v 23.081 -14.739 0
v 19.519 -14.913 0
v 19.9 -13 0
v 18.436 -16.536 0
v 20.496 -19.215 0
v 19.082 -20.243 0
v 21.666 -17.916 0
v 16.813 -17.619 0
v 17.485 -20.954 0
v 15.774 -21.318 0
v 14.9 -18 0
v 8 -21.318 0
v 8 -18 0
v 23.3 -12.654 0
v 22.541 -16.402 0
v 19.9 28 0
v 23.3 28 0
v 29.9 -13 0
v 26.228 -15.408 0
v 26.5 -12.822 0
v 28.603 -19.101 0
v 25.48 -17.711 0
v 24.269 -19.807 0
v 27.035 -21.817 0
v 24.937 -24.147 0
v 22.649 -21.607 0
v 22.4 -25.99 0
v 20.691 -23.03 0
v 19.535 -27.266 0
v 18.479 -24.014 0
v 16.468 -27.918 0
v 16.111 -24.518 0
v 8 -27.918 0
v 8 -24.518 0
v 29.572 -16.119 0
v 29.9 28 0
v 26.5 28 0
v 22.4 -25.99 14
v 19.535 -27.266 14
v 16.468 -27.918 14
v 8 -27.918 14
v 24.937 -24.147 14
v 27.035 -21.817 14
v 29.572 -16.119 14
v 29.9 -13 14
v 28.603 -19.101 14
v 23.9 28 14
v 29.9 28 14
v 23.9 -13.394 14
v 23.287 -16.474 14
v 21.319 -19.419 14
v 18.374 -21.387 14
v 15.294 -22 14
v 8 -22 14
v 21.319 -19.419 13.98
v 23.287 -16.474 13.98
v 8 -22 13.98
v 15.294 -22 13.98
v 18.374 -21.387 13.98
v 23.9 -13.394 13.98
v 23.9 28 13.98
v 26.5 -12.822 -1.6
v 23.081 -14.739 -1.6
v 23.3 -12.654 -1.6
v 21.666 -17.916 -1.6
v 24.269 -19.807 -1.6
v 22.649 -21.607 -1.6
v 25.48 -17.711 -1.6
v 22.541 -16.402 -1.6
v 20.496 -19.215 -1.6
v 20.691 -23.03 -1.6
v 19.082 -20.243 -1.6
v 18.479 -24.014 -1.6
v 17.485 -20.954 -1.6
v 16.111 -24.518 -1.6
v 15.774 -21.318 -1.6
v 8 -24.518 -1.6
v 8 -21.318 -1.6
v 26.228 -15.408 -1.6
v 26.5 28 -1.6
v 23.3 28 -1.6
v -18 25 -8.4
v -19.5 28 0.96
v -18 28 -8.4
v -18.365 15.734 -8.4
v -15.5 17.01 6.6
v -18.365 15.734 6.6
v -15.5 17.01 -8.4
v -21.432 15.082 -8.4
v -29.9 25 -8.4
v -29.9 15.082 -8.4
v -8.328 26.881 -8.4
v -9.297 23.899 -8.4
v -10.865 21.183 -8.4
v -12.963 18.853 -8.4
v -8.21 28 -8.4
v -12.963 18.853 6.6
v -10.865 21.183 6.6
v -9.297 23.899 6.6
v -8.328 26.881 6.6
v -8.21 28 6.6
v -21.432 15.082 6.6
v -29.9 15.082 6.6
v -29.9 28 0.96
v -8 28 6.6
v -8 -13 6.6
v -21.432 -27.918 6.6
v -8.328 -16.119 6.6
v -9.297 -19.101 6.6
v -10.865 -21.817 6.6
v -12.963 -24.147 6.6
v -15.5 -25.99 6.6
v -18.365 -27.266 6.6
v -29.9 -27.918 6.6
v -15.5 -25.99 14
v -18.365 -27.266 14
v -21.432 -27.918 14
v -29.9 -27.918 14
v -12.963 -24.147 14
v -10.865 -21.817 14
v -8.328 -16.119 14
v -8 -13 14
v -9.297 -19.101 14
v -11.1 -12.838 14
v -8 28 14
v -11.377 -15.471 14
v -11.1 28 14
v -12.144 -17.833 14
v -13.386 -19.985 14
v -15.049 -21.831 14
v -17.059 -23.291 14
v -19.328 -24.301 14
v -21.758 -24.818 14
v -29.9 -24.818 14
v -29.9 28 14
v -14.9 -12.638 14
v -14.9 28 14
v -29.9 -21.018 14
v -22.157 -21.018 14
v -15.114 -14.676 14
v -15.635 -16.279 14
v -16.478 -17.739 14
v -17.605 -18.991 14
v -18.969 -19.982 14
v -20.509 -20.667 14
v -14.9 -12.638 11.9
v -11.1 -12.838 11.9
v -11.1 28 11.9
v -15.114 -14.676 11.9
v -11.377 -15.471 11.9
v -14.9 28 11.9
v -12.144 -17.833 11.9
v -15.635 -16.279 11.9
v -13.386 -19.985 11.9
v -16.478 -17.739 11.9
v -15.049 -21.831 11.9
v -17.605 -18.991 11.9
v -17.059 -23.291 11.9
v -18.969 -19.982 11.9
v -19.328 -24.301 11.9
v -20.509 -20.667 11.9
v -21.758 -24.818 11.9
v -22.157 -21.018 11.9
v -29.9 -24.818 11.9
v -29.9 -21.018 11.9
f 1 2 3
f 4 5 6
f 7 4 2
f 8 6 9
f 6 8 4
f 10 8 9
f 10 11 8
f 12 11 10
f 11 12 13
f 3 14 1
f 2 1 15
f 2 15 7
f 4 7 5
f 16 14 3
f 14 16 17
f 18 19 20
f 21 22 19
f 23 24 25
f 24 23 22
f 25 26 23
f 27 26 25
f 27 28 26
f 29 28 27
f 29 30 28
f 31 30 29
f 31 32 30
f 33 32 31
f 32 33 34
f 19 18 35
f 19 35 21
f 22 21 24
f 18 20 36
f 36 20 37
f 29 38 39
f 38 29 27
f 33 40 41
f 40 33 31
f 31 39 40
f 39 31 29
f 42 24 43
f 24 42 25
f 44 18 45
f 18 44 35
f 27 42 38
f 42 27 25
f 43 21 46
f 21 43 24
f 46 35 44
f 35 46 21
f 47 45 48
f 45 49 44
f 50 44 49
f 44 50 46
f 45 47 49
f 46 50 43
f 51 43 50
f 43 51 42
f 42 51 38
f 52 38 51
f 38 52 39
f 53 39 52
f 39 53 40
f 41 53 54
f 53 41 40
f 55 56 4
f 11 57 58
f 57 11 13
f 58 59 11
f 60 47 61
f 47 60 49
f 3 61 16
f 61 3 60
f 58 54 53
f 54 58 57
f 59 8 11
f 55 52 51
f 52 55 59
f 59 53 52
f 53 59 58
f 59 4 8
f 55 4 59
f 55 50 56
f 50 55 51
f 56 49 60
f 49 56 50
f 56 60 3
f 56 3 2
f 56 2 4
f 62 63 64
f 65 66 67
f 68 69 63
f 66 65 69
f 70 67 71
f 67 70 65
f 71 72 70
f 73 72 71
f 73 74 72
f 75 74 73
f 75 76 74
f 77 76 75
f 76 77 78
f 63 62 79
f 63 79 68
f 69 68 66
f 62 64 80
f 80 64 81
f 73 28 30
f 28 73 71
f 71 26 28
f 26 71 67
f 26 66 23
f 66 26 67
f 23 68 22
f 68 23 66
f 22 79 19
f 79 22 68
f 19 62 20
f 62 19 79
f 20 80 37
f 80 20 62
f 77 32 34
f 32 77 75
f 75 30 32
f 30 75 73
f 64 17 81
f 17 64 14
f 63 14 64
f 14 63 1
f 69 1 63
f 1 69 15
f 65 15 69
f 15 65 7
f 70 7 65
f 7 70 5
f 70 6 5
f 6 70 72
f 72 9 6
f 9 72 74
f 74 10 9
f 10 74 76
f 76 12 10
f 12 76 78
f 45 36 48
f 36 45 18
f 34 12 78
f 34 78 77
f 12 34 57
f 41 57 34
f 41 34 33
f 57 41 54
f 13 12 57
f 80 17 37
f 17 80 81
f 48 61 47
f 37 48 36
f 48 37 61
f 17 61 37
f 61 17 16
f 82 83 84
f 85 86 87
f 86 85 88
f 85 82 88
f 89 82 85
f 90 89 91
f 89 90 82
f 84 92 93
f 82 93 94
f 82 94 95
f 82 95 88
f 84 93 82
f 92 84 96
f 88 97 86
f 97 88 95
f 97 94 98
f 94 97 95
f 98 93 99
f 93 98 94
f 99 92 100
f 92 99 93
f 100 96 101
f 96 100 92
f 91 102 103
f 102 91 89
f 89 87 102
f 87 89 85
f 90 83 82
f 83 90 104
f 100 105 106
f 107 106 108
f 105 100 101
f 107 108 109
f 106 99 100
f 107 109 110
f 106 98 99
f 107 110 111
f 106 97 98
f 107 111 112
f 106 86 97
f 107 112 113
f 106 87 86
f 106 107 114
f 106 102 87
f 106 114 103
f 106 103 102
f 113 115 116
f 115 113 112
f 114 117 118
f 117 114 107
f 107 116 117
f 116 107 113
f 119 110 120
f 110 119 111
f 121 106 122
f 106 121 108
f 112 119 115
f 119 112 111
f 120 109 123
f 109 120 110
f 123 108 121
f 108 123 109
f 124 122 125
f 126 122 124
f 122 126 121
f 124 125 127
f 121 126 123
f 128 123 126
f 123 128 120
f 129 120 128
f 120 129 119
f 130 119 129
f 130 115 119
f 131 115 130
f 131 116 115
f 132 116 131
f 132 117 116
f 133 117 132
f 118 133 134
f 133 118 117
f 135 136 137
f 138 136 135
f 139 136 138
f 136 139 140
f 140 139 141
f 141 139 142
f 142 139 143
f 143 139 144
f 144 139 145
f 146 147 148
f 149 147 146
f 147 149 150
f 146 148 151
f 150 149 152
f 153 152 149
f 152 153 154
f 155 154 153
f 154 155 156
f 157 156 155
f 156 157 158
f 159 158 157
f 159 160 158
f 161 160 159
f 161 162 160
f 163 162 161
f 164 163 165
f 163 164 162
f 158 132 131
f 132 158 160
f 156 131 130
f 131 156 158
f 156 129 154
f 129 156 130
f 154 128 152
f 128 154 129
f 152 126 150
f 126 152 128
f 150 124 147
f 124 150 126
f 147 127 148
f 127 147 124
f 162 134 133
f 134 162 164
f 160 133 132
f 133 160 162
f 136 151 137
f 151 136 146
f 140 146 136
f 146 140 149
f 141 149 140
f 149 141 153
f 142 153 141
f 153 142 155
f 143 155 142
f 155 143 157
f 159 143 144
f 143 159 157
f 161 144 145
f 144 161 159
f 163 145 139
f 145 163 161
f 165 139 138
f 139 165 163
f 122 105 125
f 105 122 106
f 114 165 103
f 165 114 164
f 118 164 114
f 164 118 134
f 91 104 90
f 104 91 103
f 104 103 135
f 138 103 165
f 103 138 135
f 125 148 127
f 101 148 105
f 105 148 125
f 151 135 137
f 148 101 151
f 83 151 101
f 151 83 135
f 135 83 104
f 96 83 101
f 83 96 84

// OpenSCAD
// file: ../../lib/project/util.scad
// lib/project/util.scad

module rounded_rect_2d(size = [10, 10], r = 2) {
  x = size[0];
  y = size[1];
  rr = min(r, min(x, y) / 2);

  hull() {
    for (sx = [-1, 1], sy = [-1, 1]) {
      translate([sx * (x / 2 - rr), sy * (y / 2 - rr)])
        circle(r = rr);
    }
  }
}
// file: ../../lib/project/params.scad
// lib/project/params.scad
// Shared project parameters for the final tray and all fit-test models.

debug = false;

// Main tray footprint.
tray_corner_r = 15;

// Top tray shell.
tray_floor_t = 2.4;
tray_wall_h = 14;
top_wall_w = 10;
rim_inner_taper = 4.0;
glue_rabbet_h = 1.6;
glue_rabbet_w = 3.2;
glue_rabbet_side_clearance = 0.3;
glue_rabbet_vertical_clearance = 0.5;

// Underside support lip and rear support section.
support_lip_drop = 15;
support_lip_w = 10;
front_lip_forward_shift = 2;
front_lip_back_extra = 5;
front_lip_bottom_back_extra = 0;
side_lip_inner_extra = 2.5;
side_lip_bottom_inner_extra = 0;
console_clear_w = 320;
side_lip_run = 170;
tray_w = console_clear_w + 2 * support_lip_w;
tray_d = side_lip_run + support_lip_w;
front_extension = 45;
rear_gap_w = 28;
rear_tongue_side_margin = 20;
rear_tongue_w = tray_w - 2 * rear_tongue_side_margin;
rear_tongue_depth = 29;
rear_tongue_t = 4.0;

// Cup holder location and plug geometry.
cup_spacing = 135;
// Confirmed from fit checks: move plugs 39 mm rearward from the prior position.
cup_y_from_front = 111;
plug_top_d = 90;
plug_bottom_d = 78;
plug_h = 71;
plug_shell_t = 1.6;
plug_clearance_z = 0;
cup_rim_w = 7;
cup_rim_h = 5;

// Optional underside splice plate for joining printed tray halves.
splice_plate_enable = true;
splice_plate_w = 120;
splice_plate_d = 18;
splice_plate_t = 2;
splice_plate_corner_r = 3;
splice_plate_y_from_front = 40;
splice_plate_side_clearance = 0.3;
splice_plate_vertical_clearance = 0.5;
rear_splice_plate_enable = true;
rear_splice_plate_y_from_front = 184;

// Fit-test defaults.
test_plug_top_ds = [84, 85, 86];
test_spacing_values = [116, 118, 120];
test_lip_drop_values = [8, 10, 12];
test_rear_tongue_ts = [1.4, 1.8, 2.2];
test_frame_wall_w = 12;
test_front_zone_depth = 100;
test_rear_zone_depth = 56;
test_gap_section_w = 140;
test_coupon_spacing = 18;
test_front_to_back_slice_w = 10;
test_side_to_side_slice_w = 10;
test_rabbet_corner_section_size = 56;
test_rabbet_coupon_gap = 16;
test_rabbet_body_margin_from_groove = 15;
// main file
use <../../lib/project/console_tray.scad>;
include <../../lib/project/params.scad>;

top_rim_rabbet_corner_fit_variant(
  tray_w = tray_w,
  tray_d = tray_d,
  front_extension = front_extension,
  tray_corner_r = tray_corner_r,
  tray_floor_t = tray_floor_t,
  tray_wall_h = tray_wall_h,
  top_wall_w = top_wall_w,
  rim_inner_taper = rim_inner_taper,
  glue_rabbet_h = glue_rabbet_h,
  glue_rabbet_w = glue_rabbet_w,
  glue_rabbet_side_clearance = glue_rabbet_side_clearance,
  glue_rabbet_vertical_clearance = glue_rabbet_vertical_clearance,
  support_lip_drop = support_lip_drop,
  support_lip_w = support_lip_w,
  front_lip_forward_shift = front_lip_forward_shift,
  front_lip_back_extra = front_lip_back_extra,
  front_lip_bottom_back_extra = front_lip_bottom_back_extra,
  side_lip_inner_extra = side_lip_inner_extra,
  side_lip_bottom_inner_extra = side_lip_bottom_inner_extra,
  rear_gap_w = rear_gap_w,
  rear_tongue_w = rear_tongue_w,
  rear_tongue_depth = rear_tongue_depth,
  rear_tongue_t = rear_tongue_t,
  cup_spacing = cup_spacing,
  cup_y_from_front = cup_y_from_front,
  plug_top_d = plug_top_d,
  plug_bottom_d = plug_bottom_d,
  plug_h = plug_h,
  plug_shell_t = plug_shell_t,
  cup_rim_w = cup_rim_w,
  cup_rim_h = cup_rim_h,
  splice_plate_enable = splice_plate_enable,
  splice_plate_w = splice_plate_w,
  splice_plate_d = splice_plate_d,
  splice_plate_t = splice_plate_t,
  splice_plate_corner_r = splice_plate_corner_r,
  splice_plate_y_from_front = splice_plate_y_from_front,
  splice_plate_side_clearance = splice_plate_side_clearance,
  splice_plate_vertical_clearance = splice_plate_vertical_clearance,
  rear_splice_plate_enable = rear_splice_plate_enable,
  rear_splice_plate_y_from_front = rear_splice_plate_y_from_front,
  plug_clearance_z = plug_clearance_z,
  debug = debug,
  section_size = test_rabbet_corner_section_size,
  coupon_gap = test_rabbet_coupon_gap,
  body_margin_from_groove = test_rabbet_body_margin_from_groove
);
